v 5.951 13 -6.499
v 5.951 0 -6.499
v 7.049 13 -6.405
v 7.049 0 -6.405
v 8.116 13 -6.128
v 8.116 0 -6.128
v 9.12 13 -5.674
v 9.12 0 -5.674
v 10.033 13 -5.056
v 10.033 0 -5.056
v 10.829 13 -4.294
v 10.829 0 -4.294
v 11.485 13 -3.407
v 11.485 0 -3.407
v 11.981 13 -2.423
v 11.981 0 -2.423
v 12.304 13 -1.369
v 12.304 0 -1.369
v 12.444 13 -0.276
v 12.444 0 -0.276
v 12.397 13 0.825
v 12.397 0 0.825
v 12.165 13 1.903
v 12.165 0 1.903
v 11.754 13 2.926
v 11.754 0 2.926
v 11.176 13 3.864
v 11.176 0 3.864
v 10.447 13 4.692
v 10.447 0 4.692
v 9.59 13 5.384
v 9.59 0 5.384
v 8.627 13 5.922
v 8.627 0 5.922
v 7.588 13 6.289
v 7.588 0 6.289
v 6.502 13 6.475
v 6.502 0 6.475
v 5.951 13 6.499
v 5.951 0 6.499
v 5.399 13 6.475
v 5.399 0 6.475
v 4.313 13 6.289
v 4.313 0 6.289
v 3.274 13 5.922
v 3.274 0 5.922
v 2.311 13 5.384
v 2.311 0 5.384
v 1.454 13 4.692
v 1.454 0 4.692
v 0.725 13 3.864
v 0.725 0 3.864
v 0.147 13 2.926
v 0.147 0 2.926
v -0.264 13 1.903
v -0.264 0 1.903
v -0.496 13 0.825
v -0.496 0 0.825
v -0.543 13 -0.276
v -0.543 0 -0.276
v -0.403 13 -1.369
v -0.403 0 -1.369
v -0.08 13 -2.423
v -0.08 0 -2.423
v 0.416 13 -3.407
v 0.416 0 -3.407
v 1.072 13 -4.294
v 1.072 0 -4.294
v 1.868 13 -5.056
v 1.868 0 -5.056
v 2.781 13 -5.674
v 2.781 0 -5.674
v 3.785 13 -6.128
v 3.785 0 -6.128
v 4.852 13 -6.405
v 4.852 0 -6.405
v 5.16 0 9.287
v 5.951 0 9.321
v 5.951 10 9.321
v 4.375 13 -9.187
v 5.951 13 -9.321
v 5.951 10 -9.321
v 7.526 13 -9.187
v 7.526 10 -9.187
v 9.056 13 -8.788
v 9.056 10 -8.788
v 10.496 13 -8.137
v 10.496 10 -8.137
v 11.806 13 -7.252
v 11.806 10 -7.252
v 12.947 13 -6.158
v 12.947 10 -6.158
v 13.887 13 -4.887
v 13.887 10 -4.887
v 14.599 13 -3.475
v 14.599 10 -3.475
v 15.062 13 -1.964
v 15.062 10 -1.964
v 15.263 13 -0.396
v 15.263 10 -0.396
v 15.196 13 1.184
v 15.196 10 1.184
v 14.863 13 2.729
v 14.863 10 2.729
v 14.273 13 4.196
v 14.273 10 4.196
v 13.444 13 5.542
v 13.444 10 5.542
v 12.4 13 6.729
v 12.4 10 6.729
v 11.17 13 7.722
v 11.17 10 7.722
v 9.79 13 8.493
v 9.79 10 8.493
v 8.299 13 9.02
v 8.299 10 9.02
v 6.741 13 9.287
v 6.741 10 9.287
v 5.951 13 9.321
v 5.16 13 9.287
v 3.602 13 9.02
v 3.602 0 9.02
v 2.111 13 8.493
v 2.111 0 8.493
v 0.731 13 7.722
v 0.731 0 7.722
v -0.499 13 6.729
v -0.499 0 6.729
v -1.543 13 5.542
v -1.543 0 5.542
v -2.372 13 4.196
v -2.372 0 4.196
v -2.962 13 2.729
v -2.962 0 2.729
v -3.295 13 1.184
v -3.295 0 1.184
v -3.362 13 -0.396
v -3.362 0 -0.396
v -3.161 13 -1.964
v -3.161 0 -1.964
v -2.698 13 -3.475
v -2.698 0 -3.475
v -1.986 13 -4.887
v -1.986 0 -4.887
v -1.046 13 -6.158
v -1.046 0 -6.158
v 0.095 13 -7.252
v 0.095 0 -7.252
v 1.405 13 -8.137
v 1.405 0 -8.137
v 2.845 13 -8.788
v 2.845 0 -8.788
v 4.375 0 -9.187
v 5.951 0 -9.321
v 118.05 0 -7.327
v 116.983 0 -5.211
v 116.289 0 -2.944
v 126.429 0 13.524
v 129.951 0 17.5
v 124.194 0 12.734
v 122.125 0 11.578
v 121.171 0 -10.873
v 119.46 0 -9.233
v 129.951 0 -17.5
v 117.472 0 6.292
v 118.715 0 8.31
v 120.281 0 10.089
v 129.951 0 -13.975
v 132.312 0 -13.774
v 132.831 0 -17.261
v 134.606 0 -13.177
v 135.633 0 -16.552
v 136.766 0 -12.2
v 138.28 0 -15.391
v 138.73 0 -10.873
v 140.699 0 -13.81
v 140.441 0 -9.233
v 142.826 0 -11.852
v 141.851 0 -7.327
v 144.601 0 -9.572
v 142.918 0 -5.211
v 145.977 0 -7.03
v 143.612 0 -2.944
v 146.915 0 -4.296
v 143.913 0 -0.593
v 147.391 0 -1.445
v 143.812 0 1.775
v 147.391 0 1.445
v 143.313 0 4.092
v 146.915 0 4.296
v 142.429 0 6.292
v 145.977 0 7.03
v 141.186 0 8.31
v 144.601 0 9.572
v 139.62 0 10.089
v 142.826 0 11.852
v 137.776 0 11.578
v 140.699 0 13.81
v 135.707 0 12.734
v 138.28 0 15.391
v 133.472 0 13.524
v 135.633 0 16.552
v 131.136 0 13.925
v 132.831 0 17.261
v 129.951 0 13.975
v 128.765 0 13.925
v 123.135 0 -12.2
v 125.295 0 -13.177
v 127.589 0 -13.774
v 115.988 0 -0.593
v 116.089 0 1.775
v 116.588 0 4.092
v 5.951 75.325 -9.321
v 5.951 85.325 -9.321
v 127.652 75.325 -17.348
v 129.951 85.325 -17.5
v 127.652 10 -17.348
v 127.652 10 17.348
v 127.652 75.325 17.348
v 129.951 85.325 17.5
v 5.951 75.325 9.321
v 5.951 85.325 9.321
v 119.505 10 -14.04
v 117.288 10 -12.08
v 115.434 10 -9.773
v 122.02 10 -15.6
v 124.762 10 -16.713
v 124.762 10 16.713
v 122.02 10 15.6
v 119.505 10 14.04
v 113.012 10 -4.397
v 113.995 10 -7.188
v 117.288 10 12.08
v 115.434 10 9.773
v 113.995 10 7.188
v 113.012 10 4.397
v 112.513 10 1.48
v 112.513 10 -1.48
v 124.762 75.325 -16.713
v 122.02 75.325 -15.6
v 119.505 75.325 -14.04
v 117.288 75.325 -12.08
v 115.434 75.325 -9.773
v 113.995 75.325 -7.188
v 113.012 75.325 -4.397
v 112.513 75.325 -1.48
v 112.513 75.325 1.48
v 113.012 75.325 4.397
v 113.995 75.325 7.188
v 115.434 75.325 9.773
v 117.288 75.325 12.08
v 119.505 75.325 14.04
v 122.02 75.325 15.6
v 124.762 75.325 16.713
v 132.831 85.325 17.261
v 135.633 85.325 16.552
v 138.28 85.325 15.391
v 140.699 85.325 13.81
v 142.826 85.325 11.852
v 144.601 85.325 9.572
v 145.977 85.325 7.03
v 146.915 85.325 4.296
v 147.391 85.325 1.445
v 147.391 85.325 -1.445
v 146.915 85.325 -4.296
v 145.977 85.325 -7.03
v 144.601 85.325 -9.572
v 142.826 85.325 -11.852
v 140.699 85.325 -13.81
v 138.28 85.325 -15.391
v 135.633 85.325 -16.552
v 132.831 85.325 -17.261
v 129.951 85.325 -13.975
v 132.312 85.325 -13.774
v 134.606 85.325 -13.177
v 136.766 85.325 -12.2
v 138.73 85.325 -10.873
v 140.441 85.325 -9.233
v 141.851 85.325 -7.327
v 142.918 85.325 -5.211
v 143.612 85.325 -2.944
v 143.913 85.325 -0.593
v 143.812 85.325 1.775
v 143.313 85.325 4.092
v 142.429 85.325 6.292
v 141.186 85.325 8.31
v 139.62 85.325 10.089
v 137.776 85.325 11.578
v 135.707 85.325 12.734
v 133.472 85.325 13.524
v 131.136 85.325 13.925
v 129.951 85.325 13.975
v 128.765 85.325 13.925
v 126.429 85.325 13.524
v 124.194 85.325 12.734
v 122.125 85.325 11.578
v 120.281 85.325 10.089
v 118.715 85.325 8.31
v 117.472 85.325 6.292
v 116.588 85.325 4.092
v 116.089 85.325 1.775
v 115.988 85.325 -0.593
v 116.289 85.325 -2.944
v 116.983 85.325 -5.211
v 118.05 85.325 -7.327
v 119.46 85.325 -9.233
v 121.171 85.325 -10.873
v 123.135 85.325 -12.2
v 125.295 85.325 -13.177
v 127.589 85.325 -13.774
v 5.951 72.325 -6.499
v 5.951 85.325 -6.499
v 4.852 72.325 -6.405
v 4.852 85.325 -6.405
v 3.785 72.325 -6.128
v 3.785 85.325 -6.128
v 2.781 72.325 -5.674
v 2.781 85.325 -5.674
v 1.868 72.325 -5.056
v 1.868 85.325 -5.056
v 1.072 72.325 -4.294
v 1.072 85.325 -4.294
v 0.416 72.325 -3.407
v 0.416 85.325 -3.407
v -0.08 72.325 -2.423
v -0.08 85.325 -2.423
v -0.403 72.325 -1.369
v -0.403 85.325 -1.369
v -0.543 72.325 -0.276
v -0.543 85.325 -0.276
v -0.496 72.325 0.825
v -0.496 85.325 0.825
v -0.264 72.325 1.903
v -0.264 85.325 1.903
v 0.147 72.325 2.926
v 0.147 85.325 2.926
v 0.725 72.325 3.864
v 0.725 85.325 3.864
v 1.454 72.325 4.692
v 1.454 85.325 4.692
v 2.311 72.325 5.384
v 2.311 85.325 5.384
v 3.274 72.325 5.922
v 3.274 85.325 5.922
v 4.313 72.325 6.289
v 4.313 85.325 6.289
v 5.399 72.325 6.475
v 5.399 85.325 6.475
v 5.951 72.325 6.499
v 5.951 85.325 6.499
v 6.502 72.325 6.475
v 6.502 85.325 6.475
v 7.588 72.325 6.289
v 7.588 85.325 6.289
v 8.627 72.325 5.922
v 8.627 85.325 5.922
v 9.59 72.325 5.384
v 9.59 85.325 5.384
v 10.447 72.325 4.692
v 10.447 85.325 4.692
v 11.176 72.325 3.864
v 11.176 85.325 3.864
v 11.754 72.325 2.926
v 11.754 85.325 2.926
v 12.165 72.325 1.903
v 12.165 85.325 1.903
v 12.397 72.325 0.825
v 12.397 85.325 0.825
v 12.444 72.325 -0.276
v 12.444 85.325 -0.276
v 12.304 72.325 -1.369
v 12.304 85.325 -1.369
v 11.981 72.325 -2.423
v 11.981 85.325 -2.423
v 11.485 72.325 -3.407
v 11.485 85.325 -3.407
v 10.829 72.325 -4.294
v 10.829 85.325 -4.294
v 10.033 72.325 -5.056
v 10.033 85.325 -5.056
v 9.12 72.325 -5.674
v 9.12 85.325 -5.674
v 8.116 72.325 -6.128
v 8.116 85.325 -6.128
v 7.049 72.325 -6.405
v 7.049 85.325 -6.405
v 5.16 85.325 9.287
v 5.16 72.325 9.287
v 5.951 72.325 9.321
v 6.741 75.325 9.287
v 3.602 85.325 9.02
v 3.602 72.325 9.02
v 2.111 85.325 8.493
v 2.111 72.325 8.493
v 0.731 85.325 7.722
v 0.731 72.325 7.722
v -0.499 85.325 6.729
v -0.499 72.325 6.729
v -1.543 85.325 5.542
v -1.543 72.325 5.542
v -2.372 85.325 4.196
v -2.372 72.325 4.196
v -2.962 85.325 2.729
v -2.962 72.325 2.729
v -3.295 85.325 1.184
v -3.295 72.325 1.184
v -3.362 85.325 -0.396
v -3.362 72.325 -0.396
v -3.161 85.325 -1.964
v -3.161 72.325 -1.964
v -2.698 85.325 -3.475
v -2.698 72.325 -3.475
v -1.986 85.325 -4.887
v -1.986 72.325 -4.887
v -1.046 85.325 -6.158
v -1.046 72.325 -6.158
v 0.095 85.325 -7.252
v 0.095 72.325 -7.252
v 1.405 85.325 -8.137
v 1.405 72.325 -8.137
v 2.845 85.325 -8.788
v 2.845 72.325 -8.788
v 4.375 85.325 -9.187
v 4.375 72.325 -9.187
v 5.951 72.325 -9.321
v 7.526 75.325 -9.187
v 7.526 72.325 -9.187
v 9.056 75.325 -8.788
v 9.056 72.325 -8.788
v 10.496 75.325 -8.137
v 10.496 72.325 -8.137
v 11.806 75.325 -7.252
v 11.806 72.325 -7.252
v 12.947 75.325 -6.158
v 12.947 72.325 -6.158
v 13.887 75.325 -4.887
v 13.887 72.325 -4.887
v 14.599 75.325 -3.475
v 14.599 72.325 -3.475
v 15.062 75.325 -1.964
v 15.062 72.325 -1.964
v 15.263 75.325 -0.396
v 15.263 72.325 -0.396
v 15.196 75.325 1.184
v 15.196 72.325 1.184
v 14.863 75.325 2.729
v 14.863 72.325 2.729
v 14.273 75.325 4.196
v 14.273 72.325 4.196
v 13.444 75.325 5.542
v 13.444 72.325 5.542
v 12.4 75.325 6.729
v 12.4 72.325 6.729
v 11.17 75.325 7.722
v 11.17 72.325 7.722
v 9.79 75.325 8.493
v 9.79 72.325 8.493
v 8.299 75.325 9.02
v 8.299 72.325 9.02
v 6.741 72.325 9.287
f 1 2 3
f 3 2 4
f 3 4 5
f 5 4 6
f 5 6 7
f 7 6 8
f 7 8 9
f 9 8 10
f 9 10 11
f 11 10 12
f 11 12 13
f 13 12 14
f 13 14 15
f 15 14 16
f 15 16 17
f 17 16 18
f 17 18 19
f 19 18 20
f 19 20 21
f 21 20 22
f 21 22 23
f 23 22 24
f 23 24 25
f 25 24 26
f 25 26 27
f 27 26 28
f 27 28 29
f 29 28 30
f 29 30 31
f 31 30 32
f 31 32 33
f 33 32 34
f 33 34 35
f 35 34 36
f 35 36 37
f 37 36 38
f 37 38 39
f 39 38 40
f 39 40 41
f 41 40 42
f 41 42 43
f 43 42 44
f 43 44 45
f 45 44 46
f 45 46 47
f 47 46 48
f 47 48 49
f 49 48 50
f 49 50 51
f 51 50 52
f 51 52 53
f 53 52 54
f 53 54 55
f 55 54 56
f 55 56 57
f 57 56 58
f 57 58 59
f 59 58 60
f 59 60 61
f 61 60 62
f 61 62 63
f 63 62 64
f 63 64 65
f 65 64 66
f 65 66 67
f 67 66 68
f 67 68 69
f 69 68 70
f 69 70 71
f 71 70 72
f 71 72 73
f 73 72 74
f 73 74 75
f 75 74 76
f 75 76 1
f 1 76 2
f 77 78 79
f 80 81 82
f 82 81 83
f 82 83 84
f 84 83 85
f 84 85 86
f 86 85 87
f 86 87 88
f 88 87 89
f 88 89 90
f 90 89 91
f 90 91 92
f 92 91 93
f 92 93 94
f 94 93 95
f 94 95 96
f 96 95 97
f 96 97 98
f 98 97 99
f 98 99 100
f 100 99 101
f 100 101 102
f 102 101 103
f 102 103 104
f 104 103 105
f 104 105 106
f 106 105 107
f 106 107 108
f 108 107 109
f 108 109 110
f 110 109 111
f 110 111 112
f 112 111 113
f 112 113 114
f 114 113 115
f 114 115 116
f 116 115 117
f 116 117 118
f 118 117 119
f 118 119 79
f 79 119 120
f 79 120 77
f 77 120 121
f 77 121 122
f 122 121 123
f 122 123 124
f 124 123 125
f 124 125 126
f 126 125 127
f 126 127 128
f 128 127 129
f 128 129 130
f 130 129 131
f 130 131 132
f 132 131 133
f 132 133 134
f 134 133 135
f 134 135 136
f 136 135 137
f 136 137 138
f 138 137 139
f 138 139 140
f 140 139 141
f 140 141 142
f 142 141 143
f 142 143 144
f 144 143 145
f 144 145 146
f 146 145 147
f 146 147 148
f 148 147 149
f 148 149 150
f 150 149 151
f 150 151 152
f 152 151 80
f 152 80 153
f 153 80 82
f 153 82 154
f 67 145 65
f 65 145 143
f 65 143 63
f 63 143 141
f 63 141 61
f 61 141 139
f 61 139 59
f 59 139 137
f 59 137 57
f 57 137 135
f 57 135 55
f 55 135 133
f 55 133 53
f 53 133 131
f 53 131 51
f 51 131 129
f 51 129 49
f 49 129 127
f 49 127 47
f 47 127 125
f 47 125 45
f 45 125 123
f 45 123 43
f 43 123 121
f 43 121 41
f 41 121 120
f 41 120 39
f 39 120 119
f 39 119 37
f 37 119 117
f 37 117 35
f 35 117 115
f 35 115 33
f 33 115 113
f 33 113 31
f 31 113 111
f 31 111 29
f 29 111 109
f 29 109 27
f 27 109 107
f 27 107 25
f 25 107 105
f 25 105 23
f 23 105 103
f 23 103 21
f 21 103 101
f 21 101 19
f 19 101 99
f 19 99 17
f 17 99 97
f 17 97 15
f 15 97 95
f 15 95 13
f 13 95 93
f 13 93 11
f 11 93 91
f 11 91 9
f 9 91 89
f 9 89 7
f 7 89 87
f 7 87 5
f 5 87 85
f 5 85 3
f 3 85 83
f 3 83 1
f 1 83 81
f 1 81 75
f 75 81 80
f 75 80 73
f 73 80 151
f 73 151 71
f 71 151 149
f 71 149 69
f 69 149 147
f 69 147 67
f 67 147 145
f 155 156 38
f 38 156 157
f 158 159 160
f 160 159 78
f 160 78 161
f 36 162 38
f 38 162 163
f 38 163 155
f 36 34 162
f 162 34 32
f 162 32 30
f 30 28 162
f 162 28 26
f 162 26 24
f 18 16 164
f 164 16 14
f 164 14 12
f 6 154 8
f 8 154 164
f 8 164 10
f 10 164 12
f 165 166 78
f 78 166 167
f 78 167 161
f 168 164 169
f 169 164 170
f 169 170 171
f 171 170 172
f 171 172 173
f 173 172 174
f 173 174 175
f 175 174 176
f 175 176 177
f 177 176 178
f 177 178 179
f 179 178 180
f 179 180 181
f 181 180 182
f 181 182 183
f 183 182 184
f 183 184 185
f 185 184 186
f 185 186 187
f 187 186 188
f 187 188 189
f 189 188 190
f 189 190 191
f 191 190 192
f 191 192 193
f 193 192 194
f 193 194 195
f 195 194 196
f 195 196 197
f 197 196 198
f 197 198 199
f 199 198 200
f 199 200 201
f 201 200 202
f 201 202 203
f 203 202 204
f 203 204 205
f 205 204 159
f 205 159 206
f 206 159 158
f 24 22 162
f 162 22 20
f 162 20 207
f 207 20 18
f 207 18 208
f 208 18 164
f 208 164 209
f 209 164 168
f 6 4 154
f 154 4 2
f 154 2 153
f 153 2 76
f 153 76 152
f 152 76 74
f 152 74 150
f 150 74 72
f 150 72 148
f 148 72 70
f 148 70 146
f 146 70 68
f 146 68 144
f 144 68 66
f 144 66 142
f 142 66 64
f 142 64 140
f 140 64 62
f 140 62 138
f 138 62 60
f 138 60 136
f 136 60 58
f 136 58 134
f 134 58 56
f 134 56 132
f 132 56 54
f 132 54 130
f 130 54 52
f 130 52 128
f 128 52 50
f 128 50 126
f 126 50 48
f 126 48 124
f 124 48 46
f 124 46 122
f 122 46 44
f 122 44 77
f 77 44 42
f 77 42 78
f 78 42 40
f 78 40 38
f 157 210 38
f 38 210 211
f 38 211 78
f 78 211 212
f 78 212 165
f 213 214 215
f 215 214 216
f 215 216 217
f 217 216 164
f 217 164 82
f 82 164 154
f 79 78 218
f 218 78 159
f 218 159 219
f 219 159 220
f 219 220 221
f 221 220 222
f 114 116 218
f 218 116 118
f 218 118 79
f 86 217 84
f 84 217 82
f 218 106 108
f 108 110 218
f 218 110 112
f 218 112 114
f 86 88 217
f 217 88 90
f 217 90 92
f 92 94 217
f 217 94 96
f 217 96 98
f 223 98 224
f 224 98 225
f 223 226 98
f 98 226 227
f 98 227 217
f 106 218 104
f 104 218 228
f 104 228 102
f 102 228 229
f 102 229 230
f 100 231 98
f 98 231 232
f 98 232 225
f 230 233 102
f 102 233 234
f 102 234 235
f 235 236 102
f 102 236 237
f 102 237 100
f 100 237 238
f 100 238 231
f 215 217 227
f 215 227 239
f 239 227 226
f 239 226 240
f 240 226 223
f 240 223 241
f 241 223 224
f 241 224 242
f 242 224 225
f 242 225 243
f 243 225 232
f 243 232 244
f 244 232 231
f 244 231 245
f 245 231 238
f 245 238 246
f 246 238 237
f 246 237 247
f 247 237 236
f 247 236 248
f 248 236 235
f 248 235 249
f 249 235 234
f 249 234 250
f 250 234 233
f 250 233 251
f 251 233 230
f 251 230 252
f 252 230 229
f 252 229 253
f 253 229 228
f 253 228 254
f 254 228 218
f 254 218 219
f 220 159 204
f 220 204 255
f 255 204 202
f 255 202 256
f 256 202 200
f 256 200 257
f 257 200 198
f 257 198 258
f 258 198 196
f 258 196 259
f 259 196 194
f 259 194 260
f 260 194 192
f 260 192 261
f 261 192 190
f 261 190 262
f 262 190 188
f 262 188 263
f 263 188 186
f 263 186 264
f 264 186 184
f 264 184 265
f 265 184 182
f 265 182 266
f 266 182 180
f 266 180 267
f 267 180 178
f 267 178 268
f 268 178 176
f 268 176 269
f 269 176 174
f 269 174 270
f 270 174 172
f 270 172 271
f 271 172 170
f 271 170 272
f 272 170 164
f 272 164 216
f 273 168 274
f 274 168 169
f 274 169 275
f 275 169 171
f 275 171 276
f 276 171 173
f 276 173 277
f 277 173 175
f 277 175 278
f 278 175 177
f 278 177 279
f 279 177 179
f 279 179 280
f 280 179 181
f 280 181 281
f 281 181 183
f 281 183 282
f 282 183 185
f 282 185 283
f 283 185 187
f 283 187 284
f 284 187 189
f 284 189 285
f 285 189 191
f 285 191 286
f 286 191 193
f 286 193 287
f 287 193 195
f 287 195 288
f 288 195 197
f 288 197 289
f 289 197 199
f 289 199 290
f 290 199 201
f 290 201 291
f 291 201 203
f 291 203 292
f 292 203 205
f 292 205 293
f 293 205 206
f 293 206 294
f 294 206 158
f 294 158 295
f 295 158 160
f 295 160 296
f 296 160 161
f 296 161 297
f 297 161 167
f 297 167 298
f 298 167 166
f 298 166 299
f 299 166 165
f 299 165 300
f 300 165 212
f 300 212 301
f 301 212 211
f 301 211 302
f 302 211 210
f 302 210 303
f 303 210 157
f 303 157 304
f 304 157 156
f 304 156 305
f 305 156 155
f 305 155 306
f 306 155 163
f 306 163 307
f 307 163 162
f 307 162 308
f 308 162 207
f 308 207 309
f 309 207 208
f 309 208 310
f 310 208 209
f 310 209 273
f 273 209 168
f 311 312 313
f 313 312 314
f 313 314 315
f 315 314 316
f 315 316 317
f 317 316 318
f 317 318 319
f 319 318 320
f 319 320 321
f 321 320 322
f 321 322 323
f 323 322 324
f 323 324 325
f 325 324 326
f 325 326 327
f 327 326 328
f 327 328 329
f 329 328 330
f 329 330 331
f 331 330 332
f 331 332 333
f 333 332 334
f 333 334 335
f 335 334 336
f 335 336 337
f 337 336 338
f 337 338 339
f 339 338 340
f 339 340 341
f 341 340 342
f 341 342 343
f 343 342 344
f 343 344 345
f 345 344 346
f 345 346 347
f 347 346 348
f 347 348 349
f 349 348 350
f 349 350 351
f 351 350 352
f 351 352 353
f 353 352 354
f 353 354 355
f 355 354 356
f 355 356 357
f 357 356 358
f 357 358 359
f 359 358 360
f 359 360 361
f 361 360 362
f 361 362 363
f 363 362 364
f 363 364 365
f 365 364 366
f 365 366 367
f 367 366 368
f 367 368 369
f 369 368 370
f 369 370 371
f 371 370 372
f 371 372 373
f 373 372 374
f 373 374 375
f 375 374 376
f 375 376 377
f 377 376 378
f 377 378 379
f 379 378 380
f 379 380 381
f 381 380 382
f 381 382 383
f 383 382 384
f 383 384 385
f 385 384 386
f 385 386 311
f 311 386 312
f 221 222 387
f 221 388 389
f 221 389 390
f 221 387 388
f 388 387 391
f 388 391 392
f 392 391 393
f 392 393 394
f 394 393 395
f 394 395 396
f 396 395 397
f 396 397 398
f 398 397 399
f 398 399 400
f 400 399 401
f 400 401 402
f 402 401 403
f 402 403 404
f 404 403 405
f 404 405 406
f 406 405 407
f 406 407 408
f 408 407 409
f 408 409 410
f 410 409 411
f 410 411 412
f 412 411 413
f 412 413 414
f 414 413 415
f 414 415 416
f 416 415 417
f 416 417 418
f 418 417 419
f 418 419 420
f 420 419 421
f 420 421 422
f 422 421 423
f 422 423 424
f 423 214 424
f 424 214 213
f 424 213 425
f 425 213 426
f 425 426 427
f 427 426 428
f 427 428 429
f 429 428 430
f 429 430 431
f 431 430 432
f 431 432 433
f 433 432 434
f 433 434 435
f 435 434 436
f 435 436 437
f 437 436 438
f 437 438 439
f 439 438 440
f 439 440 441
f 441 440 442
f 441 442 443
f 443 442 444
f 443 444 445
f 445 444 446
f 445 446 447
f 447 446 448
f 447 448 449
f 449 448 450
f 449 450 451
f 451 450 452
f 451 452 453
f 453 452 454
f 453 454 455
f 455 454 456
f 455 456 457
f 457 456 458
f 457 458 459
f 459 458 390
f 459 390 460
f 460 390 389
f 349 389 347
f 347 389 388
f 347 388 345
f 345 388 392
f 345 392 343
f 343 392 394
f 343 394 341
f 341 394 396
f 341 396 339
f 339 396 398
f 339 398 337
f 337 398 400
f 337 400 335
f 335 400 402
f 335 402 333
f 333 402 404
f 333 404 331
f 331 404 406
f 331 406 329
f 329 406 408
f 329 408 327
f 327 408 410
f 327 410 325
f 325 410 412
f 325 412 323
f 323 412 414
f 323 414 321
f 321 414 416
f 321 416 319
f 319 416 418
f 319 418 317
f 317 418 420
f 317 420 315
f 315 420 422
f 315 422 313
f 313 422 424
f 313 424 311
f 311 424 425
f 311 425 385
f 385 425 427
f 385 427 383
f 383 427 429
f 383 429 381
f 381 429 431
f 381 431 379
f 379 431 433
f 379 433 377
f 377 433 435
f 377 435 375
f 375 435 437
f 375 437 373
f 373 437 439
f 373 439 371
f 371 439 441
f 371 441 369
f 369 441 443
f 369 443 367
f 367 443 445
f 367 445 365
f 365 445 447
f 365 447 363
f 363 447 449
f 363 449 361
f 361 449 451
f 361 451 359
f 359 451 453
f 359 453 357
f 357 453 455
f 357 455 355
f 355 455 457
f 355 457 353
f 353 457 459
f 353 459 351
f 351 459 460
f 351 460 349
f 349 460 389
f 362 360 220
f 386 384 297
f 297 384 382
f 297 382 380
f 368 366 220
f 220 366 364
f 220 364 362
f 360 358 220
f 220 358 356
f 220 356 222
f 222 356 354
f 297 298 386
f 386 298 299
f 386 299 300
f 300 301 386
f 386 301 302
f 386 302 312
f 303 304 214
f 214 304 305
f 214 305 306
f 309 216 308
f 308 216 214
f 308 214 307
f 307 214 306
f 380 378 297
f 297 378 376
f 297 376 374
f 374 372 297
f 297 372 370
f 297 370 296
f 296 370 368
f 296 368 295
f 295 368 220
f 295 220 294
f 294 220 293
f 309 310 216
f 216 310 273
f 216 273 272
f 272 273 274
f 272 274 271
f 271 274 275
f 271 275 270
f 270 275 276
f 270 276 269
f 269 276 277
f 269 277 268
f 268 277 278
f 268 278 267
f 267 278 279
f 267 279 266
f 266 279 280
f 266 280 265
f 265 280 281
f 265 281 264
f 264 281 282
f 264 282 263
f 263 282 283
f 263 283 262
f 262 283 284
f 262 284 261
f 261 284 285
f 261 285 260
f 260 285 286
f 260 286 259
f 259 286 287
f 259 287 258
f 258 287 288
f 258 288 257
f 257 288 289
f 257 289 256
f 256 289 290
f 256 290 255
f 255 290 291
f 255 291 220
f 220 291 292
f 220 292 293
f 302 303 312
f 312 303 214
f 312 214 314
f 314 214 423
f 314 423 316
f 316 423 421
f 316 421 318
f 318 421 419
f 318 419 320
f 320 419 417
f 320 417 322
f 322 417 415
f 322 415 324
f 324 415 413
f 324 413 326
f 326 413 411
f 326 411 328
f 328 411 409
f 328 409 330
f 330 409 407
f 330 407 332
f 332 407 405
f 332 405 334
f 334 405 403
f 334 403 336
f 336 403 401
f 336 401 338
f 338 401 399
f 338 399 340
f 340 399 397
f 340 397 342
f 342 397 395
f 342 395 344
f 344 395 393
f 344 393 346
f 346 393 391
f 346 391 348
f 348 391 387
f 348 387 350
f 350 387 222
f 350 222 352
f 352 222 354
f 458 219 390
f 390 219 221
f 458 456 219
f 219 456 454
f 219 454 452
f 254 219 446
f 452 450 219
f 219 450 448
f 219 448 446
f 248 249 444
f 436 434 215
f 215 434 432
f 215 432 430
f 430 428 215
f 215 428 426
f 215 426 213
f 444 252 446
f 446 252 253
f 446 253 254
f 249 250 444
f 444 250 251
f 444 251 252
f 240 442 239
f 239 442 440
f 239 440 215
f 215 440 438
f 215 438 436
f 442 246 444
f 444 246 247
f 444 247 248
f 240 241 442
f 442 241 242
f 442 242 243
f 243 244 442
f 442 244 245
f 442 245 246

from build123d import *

# Parameters (mm, degrees)
CROQUIS11_R             = 9.320716026
CROQUIS11_R_2           = 6.498904475
SALIENTE_EXTRUIR7_DEPTH = 13
SALIENTE_EXTRUIR8_DEPTH = 10
CROQUIS11_17_R          = 13.974913408
SALIENTE_EXTRUIR9_DEPTH = 42.662603
SIMETR_A3_START         = 75.325206553
SIMETR_A3_OUTLINE_R     = 6.498904475
SIMETR_A3_OUTLINE_R_2   = 13.974913408
SIMETR_A3_DEPTH         = 10
SIMETR_A3_START_2       = 42.662603276
SIMETR_A3_2_OUTLINE_R   = 13.974913408
SIMETR_A3_2_DEPTH       = 32.662603277
SIMETR_A3_START_3       = 72.325206553
SIMETR_A3_3_OUTLINE_R   = 9.320716026
SIMETR_A3_3_OUTLINE_R_2 = 6.498904475
SIMETR_A3_3_DEPTH       = 3


# Read off the part's stored shape, not the designer's step: Simetría3
with BuildPart() as part:
    # Croquis11 → Saliente-Extruir7 (new body)
    with BuildSketch(Plane(origin=(0, 0, 0), x_dir=(1, 0, 0), z_dir=(0, 1, 0))):
        with Locations(Location((5.950503047, 0, 0), (0, 0, 90))):
            Circle(CROQUIS11_R)
        with Locations(Location((5.950503047, 0, 0), (0, 0, 90))):
            Circle(CROQUIS11_R_2, mode=Mode.SUBTRACT)
    extrude(amount=SALIENTE_EXTRUIR7_DEPTH)

    # Croquis11<13> → Saliente-Extruir8 (add)
    with BuildSketch(Plane(origin=(0, 0, 0), x_dir=(1, 0, 0), z_dir=(0, 1, 0))):
        with BuildLine():
            Line((112.450503047, 0), (15.271219073, 0))
            ThreePointArc((15.271219073, 0), (12.541244554, -6.590741507), (5.950503047, -9.320716026))
            Line((5.950503047, -9.320716026), (127.651835642, -17.348375375))
            ThreePointArc((127.651835642, -17.348375375), (116.788499408, -11.533068118), (112.450503047, 0))
        make_face()
        with BuildLine():
            ThreePointArc((5.950503047, 9.320716026), (12.541244554, 6.590741507), (15.271219073, 0))
            Line((15.271219073, 0), (112.450503047, 0))
            ThreePointArc((112.450503047, 0), (116.788499408, 11.533068118), (127.651835642, 17.348375375))
            Line((127.651835642, 17.348375375), (5.950503047, 9.320716026))
        make_face()
    extrude(amount=SALIENTE_EXTRUIR8_DEPTH)

    # Croquis11<17> → Saliente-Extruir9 (add)
    with BuildSketch(Plane(origin=(0, 0, 0), x_dir=(1, 0, 0), z_dir=(0, 1, 0))):
        with BuildLine():
            ThreePointArc((127.651835642, 17.348375375), (112.450503047, 0), (127.651835642, -17.348375375))
            Line((127.651835642, -17.348375375), (129.950503047, -17.5))
            ThreePointArc((129.950503047, -17.5), (142.324871718, -12.374368671), (147.450503047, 0))
            ThreePointArc((147.450503047, 0), (142.324871718, 12.374368671), (129.950503047, 17.5))
            Line((129.950503047, 17.5), (127.651835642, 17.348375375))
        make_face()
        with Locations(Location((129.950503047, 0, 0), (0, 0, 270))):
            Circle(CROQUIS11_17_R, mode=Mode.SUBTRACT)
    extrude(amount=SALIENTE_EXTRUIR9_DEPTH)



with BuildPart() as body_2:
    # Simetría3 outline → Simetría3 (new body)
    with BuildSketch(Plane(origin=(0, 0, 0), x_dir=(1, 0, 0), z_dir=(0, 1, 0)).offset(SIMETR_A3_START)):
        with BuildLine():
            ThreePointArc((5.950503047, 9.320716026), (-3.370212979, 0), (5.950503047, -9.320716026))
            Line((5.950503047, -9.320716026), (129.950503047, -17.5))
            ThreePointArc((129.950503047, -17.5), (147.450503047, 0), (129.950503047, 17.5))
            Line((129.950503047, 17.5), (5.950503047, 9.320716026))
        make_face()
        with Locations((5.950503047, 0)):
            Circle(SIMETR_A3_OUTLINE_R, mode=Mode.SUBTRACT)
        with Locations((129.950503047, 0)):
            Circle(SIMETR_A3_OUTLINE_R_2, mode=Mode.SUBTRACT)
    extrude(amount=SIMETR_A3_DEPTH)


with BuildPart() as part_1:
    add(part.part)

    add(body_2.part)  # Simetr_a3 2 merges body 2
    # Simetr_a3 2 outline → Simetr_a3 2 (add)
    with BuildSketch(Plane(origin=(0, 0, 0), x_dir=(1, 0, 0), z_dir=(0, 1, 0)).offset(SIMETR_A3_START_2)):
        with BuildLine():
            Line((129.950503047, 17.5), (127.651835642, 17.348375375))
            ThreePointArc((127.651835642, 17.348375375), (112.450503047, 0), (127.651835642, -17.348375375))
            Line((127.651835642, -17.348375375), (129.950503047, -17.5))
            ThreePointArc((129.950503047, -17.5), (147.450503047, 0), (129.950503047, 17.5))
        make_face()
        with Locations((129.950503047, 0)):
            Circle(SIMETR_A3_2_OUTLINE_R, mode=Mode.SUBTRACT)
    extrude(amount=SIMETR_A3_2_DEPTH)

    # Simetr_a3 3 outline → Simetr_a3 3 (add)
    with BuildSketch(Plane(origin=(0, 0, 0), x_dir=(1, 0, 0), z_dir=(0, 1, 0)).offset(SIMETR_A3_START_3)):
        with Locations((5.950503047, 0)):
            Circle(SIMETR_A3_3_OUTLINE_R)
        with Locations((5.950503047, 0)):
            Circle(SIMETR_A3_3_OUTLINE_R_2, mode=Mode.SUBTRACT)
    extrude(amount=SIMETR_A3_3_DEPTH)


solid = part_1.part
